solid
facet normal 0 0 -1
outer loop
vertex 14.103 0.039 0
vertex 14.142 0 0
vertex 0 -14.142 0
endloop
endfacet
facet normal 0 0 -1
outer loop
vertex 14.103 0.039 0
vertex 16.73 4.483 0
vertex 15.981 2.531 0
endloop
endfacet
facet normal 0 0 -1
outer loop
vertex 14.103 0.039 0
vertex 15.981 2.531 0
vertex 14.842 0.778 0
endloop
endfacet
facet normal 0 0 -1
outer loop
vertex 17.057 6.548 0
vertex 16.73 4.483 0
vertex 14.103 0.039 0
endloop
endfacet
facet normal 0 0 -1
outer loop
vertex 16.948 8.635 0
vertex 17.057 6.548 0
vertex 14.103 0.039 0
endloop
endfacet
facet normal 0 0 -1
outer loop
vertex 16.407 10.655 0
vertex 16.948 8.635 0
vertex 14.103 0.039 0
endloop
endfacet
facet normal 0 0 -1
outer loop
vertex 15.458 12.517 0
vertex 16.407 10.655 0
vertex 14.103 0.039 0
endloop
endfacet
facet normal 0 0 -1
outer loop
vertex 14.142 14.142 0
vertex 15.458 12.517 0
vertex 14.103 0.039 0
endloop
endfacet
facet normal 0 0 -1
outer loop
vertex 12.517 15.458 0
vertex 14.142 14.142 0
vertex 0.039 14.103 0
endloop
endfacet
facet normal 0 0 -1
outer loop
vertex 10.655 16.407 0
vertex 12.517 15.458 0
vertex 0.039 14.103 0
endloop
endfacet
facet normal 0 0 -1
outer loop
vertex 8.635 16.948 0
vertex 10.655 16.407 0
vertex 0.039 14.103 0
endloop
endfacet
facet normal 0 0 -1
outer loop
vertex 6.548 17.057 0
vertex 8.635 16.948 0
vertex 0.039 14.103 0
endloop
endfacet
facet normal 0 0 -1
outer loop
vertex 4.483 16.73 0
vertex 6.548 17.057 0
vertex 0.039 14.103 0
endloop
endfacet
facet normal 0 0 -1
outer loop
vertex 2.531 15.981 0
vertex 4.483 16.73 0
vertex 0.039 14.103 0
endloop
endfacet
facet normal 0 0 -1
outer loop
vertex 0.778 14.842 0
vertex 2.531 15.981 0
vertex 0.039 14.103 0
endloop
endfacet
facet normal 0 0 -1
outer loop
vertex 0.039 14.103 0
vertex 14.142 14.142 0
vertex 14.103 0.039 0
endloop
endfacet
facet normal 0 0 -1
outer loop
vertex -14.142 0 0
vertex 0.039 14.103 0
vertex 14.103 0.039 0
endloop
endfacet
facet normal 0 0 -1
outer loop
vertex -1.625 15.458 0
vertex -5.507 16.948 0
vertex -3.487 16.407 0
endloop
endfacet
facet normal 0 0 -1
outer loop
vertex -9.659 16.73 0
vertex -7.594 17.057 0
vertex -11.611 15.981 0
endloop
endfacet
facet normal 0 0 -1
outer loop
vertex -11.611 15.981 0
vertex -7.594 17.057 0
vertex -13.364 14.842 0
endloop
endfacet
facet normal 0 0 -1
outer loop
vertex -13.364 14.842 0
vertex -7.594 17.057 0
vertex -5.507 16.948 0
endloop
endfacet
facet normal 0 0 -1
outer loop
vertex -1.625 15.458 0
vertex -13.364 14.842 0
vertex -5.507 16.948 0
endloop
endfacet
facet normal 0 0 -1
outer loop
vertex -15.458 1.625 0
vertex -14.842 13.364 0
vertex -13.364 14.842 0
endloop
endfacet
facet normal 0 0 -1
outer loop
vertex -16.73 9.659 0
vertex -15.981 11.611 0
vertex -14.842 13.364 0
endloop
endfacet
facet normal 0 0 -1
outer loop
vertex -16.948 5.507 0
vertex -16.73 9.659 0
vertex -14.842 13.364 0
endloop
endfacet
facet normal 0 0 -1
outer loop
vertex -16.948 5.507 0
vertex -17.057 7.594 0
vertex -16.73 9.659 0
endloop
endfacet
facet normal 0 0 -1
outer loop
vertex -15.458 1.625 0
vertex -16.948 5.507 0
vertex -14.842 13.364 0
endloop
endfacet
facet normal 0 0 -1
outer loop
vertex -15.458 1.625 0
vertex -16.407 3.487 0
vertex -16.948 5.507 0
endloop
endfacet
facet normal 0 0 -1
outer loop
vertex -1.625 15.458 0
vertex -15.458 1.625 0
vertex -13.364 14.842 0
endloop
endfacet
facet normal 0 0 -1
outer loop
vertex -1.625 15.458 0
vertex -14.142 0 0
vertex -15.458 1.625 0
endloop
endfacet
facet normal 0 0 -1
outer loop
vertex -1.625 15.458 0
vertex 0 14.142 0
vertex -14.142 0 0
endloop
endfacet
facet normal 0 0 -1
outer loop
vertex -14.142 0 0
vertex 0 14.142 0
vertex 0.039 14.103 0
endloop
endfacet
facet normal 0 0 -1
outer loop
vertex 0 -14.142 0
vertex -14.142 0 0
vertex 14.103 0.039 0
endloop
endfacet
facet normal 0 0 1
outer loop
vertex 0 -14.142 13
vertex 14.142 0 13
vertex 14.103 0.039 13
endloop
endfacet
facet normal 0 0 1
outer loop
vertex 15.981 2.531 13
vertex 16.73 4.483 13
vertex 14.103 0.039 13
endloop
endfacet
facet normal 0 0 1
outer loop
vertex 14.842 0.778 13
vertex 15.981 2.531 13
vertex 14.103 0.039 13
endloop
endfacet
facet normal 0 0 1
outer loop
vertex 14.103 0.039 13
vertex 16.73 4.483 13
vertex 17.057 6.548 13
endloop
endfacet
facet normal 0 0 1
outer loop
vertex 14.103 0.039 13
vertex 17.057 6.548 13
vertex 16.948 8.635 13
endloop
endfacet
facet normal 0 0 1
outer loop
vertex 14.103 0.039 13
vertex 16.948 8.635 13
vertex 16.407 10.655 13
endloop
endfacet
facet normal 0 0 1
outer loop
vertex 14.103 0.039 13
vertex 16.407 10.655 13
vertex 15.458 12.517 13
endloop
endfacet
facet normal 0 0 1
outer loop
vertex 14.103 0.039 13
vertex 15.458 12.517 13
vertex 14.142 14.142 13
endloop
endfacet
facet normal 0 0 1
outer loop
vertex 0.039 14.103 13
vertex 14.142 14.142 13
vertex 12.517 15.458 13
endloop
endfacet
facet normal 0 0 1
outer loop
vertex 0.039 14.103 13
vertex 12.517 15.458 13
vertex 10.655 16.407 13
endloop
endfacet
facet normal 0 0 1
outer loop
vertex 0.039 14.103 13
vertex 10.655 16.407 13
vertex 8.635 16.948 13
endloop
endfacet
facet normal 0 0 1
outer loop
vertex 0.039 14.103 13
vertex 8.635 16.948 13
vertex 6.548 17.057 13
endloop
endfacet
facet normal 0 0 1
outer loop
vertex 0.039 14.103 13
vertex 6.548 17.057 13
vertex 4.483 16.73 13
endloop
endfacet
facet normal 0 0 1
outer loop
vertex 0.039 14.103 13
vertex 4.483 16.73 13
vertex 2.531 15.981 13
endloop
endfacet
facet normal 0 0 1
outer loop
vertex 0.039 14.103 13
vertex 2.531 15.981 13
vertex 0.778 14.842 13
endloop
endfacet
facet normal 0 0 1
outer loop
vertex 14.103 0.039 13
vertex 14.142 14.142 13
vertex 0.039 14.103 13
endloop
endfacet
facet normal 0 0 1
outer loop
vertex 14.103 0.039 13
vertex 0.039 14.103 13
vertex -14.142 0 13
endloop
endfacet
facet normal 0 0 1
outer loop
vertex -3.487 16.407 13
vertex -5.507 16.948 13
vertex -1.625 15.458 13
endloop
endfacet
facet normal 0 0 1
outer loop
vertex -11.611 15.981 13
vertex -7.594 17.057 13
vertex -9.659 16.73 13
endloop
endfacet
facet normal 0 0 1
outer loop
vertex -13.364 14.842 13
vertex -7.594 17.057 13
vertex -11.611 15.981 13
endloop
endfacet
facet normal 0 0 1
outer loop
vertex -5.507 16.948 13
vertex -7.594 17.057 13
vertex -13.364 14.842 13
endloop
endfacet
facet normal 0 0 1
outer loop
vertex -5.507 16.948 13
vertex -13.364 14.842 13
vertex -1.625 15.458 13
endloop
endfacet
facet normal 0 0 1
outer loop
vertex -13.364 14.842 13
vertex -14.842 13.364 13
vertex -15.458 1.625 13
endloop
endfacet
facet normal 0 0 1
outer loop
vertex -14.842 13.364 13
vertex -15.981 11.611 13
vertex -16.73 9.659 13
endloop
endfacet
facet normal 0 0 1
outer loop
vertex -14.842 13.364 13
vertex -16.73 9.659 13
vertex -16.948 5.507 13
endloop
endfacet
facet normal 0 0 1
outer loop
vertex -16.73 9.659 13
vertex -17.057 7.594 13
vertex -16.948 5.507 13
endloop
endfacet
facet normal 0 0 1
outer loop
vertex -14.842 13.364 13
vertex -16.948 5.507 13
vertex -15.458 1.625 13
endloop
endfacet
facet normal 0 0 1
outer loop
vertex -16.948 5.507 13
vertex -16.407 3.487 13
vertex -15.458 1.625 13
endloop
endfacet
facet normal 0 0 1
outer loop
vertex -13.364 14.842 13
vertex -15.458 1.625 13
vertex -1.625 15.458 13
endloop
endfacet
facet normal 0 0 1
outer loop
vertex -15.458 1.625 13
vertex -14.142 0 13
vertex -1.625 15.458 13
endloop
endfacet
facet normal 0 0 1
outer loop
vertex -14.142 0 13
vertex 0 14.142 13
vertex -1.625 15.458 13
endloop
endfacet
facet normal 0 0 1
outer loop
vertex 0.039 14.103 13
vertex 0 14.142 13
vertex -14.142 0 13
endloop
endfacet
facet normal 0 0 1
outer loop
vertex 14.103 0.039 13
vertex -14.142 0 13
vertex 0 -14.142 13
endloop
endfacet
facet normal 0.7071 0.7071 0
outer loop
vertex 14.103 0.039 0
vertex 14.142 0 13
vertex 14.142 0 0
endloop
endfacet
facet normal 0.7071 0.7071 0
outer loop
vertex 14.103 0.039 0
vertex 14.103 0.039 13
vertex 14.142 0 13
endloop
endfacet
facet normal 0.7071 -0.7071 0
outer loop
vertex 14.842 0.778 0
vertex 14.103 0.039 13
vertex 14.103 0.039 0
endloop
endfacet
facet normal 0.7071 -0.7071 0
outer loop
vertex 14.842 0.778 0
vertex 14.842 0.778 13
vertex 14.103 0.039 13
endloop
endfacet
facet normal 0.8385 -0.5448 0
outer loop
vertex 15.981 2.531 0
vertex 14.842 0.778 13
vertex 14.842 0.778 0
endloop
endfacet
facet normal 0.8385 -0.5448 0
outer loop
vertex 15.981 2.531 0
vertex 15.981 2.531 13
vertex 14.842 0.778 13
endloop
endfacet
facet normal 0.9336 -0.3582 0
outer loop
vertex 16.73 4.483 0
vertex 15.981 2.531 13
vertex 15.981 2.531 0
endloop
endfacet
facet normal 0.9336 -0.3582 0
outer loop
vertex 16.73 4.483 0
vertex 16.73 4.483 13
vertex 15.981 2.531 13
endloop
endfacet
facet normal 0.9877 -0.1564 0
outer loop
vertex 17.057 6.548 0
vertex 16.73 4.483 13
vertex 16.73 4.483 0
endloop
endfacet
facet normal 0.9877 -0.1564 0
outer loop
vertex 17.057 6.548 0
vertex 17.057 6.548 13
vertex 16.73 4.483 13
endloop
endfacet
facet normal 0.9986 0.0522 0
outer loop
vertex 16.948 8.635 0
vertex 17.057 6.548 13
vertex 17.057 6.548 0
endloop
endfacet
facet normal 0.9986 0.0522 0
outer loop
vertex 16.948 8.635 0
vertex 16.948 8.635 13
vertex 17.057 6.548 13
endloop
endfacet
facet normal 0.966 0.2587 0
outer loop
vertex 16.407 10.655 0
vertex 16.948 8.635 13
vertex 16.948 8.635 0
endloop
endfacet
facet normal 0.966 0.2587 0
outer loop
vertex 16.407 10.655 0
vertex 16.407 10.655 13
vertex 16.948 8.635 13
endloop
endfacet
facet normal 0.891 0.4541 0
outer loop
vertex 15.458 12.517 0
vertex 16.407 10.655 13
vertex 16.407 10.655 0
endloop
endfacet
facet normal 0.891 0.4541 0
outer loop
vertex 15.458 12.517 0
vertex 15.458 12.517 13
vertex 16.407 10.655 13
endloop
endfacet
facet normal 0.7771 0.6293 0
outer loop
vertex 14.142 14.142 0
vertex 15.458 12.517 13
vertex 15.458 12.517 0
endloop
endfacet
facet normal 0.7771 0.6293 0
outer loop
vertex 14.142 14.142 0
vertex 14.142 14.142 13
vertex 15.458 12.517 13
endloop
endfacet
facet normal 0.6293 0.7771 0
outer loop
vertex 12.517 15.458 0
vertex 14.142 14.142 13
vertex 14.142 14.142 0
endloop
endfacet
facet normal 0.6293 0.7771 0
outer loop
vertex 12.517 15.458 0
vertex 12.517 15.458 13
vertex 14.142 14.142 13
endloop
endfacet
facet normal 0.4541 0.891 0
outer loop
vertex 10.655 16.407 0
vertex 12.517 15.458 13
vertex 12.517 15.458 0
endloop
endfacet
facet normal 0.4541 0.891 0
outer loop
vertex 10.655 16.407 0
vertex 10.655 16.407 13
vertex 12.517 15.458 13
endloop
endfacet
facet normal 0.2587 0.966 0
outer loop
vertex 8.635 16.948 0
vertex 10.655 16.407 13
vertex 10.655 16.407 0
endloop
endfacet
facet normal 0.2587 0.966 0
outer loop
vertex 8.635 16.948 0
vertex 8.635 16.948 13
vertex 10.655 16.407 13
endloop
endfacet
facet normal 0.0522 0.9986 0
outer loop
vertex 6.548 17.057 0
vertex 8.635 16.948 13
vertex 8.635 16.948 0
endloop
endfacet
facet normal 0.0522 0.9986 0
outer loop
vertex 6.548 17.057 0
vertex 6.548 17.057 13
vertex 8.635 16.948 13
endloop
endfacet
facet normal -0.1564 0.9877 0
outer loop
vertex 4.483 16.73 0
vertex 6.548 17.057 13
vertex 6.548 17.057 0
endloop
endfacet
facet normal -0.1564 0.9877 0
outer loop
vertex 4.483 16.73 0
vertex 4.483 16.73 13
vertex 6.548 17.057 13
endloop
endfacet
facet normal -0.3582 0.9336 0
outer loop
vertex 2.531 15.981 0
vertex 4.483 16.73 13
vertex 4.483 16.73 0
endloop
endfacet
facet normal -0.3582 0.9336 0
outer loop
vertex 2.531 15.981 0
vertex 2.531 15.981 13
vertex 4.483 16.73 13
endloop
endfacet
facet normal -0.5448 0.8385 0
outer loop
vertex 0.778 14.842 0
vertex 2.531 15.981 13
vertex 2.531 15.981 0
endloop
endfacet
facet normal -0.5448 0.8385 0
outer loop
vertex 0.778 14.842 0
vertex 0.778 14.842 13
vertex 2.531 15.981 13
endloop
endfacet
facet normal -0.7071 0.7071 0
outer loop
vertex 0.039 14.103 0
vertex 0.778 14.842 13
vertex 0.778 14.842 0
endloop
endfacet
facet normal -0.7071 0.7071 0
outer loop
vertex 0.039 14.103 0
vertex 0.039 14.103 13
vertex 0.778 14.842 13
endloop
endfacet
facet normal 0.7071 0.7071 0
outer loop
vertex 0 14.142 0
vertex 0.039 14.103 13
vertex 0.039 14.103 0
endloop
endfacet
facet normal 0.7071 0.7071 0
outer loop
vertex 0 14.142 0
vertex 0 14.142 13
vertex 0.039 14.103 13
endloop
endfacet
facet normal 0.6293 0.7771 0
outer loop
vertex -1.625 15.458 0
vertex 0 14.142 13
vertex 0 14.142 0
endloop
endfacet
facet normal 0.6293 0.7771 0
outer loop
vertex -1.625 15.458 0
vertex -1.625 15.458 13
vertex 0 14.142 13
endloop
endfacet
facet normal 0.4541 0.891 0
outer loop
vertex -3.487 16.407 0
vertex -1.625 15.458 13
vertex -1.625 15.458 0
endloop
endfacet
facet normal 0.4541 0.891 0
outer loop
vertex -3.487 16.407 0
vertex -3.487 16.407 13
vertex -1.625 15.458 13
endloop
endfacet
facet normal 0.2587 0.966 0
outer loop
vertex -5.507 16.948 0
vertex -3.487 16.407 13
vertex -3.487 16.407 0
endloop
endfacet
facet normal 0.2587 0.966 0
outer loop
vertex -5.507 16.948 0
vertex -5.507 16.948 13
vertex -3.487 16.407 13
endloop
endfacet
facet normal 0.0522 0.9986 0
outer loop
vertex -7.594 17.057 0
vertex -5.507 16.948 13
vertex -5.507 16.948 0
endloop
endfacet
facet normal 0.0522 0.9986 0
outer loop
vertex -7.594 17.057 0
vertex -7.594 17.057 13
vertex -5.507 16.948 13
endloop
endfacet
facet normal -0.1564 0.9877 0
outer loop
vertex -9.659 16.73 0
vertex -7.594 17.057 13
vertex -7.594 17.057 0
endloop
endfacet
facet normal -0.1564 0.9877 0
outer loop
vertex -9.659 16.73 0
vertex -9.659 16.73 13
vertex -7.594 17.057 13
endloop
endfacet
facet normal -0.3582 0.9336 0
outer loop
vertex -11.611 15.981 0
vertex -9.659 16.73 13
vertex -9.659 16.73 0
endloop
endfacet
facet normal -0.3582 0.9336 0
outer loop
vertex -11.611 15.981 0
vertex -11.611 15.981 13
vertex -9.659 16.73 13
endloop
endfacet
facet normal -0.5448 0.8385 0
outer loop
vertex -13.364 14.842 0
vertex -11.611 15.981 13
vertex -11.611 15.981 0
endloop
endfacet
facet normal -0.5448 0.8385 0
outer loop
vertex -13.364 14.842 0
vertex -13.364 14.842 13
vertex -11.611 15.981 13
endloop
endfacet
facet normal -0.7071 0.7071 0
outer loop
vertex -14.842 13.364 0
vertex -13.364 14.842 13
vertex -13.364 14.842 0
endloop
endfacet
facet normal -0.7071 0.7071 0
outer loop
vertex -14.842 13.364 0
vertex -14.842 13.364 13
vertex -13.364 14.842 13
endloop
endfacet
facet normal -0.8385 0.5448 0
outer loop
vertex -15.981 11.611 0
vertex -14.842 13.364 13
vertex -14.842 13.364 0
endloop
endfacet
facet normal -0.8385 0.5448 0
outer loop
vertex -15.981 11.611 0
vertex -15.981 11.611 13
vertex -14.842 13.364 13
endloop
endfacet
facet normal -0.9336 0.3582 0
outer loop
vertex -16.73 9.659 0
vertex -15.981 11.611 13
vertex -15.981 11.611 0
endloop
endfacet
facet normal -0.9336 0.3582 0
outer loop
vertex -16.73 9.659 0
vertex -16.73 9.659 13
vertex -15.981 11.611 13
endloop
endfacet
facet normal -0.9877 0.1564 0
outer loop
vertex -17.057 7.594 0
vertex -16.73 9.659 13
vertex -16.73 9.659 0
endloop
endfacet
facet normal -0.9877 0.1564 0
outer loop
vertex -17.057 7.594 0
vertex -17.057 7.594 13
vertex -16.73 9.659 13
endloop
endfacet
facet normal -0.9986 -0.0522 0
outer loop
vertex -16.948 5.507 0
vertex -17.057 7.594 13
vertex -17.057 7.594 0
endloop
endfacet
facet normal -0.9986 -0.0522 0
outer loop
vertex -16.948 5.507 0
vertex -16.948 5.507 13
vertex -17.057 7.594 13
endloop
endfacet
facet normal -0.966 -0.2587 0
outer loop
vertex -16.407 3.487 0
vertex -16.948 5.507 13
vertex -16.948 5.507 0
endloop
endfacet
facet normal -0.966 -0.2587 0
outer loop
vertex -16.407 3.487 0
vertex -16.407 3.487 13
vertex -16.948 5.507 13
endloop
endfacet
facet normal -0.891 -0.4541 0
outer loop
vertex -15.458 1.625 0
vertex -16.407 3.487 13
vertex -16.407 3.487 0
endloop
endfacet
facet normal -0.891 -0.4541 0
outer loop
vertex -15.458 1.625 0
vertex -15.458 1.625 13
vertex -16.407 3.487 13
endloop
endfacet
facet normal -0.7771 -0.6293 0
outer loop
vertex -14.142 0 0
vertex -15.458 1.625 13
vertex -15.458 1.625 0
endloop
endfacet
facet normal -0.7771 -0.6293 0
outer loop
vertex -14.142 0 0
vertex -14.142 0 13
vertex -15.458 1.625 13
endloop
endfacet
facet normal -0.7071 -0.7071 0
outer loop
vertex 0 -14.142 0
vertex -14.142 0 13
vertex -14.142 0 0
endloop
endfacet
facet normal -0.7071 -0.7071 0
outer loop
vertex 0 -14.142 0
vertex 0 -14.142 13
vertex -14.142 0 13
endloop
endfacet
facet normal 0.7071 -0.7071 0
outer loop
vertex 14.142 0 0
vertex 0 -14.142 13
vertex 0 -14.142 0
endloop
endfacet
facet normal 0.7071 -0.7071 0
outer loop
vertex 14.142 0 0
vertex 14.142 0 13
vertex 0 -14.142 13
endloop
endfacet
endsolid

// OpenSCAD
module flatHeart()
{
	
	square(20, center = true);
	
	translate([10,0,0])	
	circle(10, center = true, color="red" );
	
	translate([0,10,0]) 
	circle(10, center = true);
}

module raisedHeart()
{
	rotate ([0, 0, 45])
	linear_extrude(height=13) 	
	flatHeart();
}

raisedHeart();
